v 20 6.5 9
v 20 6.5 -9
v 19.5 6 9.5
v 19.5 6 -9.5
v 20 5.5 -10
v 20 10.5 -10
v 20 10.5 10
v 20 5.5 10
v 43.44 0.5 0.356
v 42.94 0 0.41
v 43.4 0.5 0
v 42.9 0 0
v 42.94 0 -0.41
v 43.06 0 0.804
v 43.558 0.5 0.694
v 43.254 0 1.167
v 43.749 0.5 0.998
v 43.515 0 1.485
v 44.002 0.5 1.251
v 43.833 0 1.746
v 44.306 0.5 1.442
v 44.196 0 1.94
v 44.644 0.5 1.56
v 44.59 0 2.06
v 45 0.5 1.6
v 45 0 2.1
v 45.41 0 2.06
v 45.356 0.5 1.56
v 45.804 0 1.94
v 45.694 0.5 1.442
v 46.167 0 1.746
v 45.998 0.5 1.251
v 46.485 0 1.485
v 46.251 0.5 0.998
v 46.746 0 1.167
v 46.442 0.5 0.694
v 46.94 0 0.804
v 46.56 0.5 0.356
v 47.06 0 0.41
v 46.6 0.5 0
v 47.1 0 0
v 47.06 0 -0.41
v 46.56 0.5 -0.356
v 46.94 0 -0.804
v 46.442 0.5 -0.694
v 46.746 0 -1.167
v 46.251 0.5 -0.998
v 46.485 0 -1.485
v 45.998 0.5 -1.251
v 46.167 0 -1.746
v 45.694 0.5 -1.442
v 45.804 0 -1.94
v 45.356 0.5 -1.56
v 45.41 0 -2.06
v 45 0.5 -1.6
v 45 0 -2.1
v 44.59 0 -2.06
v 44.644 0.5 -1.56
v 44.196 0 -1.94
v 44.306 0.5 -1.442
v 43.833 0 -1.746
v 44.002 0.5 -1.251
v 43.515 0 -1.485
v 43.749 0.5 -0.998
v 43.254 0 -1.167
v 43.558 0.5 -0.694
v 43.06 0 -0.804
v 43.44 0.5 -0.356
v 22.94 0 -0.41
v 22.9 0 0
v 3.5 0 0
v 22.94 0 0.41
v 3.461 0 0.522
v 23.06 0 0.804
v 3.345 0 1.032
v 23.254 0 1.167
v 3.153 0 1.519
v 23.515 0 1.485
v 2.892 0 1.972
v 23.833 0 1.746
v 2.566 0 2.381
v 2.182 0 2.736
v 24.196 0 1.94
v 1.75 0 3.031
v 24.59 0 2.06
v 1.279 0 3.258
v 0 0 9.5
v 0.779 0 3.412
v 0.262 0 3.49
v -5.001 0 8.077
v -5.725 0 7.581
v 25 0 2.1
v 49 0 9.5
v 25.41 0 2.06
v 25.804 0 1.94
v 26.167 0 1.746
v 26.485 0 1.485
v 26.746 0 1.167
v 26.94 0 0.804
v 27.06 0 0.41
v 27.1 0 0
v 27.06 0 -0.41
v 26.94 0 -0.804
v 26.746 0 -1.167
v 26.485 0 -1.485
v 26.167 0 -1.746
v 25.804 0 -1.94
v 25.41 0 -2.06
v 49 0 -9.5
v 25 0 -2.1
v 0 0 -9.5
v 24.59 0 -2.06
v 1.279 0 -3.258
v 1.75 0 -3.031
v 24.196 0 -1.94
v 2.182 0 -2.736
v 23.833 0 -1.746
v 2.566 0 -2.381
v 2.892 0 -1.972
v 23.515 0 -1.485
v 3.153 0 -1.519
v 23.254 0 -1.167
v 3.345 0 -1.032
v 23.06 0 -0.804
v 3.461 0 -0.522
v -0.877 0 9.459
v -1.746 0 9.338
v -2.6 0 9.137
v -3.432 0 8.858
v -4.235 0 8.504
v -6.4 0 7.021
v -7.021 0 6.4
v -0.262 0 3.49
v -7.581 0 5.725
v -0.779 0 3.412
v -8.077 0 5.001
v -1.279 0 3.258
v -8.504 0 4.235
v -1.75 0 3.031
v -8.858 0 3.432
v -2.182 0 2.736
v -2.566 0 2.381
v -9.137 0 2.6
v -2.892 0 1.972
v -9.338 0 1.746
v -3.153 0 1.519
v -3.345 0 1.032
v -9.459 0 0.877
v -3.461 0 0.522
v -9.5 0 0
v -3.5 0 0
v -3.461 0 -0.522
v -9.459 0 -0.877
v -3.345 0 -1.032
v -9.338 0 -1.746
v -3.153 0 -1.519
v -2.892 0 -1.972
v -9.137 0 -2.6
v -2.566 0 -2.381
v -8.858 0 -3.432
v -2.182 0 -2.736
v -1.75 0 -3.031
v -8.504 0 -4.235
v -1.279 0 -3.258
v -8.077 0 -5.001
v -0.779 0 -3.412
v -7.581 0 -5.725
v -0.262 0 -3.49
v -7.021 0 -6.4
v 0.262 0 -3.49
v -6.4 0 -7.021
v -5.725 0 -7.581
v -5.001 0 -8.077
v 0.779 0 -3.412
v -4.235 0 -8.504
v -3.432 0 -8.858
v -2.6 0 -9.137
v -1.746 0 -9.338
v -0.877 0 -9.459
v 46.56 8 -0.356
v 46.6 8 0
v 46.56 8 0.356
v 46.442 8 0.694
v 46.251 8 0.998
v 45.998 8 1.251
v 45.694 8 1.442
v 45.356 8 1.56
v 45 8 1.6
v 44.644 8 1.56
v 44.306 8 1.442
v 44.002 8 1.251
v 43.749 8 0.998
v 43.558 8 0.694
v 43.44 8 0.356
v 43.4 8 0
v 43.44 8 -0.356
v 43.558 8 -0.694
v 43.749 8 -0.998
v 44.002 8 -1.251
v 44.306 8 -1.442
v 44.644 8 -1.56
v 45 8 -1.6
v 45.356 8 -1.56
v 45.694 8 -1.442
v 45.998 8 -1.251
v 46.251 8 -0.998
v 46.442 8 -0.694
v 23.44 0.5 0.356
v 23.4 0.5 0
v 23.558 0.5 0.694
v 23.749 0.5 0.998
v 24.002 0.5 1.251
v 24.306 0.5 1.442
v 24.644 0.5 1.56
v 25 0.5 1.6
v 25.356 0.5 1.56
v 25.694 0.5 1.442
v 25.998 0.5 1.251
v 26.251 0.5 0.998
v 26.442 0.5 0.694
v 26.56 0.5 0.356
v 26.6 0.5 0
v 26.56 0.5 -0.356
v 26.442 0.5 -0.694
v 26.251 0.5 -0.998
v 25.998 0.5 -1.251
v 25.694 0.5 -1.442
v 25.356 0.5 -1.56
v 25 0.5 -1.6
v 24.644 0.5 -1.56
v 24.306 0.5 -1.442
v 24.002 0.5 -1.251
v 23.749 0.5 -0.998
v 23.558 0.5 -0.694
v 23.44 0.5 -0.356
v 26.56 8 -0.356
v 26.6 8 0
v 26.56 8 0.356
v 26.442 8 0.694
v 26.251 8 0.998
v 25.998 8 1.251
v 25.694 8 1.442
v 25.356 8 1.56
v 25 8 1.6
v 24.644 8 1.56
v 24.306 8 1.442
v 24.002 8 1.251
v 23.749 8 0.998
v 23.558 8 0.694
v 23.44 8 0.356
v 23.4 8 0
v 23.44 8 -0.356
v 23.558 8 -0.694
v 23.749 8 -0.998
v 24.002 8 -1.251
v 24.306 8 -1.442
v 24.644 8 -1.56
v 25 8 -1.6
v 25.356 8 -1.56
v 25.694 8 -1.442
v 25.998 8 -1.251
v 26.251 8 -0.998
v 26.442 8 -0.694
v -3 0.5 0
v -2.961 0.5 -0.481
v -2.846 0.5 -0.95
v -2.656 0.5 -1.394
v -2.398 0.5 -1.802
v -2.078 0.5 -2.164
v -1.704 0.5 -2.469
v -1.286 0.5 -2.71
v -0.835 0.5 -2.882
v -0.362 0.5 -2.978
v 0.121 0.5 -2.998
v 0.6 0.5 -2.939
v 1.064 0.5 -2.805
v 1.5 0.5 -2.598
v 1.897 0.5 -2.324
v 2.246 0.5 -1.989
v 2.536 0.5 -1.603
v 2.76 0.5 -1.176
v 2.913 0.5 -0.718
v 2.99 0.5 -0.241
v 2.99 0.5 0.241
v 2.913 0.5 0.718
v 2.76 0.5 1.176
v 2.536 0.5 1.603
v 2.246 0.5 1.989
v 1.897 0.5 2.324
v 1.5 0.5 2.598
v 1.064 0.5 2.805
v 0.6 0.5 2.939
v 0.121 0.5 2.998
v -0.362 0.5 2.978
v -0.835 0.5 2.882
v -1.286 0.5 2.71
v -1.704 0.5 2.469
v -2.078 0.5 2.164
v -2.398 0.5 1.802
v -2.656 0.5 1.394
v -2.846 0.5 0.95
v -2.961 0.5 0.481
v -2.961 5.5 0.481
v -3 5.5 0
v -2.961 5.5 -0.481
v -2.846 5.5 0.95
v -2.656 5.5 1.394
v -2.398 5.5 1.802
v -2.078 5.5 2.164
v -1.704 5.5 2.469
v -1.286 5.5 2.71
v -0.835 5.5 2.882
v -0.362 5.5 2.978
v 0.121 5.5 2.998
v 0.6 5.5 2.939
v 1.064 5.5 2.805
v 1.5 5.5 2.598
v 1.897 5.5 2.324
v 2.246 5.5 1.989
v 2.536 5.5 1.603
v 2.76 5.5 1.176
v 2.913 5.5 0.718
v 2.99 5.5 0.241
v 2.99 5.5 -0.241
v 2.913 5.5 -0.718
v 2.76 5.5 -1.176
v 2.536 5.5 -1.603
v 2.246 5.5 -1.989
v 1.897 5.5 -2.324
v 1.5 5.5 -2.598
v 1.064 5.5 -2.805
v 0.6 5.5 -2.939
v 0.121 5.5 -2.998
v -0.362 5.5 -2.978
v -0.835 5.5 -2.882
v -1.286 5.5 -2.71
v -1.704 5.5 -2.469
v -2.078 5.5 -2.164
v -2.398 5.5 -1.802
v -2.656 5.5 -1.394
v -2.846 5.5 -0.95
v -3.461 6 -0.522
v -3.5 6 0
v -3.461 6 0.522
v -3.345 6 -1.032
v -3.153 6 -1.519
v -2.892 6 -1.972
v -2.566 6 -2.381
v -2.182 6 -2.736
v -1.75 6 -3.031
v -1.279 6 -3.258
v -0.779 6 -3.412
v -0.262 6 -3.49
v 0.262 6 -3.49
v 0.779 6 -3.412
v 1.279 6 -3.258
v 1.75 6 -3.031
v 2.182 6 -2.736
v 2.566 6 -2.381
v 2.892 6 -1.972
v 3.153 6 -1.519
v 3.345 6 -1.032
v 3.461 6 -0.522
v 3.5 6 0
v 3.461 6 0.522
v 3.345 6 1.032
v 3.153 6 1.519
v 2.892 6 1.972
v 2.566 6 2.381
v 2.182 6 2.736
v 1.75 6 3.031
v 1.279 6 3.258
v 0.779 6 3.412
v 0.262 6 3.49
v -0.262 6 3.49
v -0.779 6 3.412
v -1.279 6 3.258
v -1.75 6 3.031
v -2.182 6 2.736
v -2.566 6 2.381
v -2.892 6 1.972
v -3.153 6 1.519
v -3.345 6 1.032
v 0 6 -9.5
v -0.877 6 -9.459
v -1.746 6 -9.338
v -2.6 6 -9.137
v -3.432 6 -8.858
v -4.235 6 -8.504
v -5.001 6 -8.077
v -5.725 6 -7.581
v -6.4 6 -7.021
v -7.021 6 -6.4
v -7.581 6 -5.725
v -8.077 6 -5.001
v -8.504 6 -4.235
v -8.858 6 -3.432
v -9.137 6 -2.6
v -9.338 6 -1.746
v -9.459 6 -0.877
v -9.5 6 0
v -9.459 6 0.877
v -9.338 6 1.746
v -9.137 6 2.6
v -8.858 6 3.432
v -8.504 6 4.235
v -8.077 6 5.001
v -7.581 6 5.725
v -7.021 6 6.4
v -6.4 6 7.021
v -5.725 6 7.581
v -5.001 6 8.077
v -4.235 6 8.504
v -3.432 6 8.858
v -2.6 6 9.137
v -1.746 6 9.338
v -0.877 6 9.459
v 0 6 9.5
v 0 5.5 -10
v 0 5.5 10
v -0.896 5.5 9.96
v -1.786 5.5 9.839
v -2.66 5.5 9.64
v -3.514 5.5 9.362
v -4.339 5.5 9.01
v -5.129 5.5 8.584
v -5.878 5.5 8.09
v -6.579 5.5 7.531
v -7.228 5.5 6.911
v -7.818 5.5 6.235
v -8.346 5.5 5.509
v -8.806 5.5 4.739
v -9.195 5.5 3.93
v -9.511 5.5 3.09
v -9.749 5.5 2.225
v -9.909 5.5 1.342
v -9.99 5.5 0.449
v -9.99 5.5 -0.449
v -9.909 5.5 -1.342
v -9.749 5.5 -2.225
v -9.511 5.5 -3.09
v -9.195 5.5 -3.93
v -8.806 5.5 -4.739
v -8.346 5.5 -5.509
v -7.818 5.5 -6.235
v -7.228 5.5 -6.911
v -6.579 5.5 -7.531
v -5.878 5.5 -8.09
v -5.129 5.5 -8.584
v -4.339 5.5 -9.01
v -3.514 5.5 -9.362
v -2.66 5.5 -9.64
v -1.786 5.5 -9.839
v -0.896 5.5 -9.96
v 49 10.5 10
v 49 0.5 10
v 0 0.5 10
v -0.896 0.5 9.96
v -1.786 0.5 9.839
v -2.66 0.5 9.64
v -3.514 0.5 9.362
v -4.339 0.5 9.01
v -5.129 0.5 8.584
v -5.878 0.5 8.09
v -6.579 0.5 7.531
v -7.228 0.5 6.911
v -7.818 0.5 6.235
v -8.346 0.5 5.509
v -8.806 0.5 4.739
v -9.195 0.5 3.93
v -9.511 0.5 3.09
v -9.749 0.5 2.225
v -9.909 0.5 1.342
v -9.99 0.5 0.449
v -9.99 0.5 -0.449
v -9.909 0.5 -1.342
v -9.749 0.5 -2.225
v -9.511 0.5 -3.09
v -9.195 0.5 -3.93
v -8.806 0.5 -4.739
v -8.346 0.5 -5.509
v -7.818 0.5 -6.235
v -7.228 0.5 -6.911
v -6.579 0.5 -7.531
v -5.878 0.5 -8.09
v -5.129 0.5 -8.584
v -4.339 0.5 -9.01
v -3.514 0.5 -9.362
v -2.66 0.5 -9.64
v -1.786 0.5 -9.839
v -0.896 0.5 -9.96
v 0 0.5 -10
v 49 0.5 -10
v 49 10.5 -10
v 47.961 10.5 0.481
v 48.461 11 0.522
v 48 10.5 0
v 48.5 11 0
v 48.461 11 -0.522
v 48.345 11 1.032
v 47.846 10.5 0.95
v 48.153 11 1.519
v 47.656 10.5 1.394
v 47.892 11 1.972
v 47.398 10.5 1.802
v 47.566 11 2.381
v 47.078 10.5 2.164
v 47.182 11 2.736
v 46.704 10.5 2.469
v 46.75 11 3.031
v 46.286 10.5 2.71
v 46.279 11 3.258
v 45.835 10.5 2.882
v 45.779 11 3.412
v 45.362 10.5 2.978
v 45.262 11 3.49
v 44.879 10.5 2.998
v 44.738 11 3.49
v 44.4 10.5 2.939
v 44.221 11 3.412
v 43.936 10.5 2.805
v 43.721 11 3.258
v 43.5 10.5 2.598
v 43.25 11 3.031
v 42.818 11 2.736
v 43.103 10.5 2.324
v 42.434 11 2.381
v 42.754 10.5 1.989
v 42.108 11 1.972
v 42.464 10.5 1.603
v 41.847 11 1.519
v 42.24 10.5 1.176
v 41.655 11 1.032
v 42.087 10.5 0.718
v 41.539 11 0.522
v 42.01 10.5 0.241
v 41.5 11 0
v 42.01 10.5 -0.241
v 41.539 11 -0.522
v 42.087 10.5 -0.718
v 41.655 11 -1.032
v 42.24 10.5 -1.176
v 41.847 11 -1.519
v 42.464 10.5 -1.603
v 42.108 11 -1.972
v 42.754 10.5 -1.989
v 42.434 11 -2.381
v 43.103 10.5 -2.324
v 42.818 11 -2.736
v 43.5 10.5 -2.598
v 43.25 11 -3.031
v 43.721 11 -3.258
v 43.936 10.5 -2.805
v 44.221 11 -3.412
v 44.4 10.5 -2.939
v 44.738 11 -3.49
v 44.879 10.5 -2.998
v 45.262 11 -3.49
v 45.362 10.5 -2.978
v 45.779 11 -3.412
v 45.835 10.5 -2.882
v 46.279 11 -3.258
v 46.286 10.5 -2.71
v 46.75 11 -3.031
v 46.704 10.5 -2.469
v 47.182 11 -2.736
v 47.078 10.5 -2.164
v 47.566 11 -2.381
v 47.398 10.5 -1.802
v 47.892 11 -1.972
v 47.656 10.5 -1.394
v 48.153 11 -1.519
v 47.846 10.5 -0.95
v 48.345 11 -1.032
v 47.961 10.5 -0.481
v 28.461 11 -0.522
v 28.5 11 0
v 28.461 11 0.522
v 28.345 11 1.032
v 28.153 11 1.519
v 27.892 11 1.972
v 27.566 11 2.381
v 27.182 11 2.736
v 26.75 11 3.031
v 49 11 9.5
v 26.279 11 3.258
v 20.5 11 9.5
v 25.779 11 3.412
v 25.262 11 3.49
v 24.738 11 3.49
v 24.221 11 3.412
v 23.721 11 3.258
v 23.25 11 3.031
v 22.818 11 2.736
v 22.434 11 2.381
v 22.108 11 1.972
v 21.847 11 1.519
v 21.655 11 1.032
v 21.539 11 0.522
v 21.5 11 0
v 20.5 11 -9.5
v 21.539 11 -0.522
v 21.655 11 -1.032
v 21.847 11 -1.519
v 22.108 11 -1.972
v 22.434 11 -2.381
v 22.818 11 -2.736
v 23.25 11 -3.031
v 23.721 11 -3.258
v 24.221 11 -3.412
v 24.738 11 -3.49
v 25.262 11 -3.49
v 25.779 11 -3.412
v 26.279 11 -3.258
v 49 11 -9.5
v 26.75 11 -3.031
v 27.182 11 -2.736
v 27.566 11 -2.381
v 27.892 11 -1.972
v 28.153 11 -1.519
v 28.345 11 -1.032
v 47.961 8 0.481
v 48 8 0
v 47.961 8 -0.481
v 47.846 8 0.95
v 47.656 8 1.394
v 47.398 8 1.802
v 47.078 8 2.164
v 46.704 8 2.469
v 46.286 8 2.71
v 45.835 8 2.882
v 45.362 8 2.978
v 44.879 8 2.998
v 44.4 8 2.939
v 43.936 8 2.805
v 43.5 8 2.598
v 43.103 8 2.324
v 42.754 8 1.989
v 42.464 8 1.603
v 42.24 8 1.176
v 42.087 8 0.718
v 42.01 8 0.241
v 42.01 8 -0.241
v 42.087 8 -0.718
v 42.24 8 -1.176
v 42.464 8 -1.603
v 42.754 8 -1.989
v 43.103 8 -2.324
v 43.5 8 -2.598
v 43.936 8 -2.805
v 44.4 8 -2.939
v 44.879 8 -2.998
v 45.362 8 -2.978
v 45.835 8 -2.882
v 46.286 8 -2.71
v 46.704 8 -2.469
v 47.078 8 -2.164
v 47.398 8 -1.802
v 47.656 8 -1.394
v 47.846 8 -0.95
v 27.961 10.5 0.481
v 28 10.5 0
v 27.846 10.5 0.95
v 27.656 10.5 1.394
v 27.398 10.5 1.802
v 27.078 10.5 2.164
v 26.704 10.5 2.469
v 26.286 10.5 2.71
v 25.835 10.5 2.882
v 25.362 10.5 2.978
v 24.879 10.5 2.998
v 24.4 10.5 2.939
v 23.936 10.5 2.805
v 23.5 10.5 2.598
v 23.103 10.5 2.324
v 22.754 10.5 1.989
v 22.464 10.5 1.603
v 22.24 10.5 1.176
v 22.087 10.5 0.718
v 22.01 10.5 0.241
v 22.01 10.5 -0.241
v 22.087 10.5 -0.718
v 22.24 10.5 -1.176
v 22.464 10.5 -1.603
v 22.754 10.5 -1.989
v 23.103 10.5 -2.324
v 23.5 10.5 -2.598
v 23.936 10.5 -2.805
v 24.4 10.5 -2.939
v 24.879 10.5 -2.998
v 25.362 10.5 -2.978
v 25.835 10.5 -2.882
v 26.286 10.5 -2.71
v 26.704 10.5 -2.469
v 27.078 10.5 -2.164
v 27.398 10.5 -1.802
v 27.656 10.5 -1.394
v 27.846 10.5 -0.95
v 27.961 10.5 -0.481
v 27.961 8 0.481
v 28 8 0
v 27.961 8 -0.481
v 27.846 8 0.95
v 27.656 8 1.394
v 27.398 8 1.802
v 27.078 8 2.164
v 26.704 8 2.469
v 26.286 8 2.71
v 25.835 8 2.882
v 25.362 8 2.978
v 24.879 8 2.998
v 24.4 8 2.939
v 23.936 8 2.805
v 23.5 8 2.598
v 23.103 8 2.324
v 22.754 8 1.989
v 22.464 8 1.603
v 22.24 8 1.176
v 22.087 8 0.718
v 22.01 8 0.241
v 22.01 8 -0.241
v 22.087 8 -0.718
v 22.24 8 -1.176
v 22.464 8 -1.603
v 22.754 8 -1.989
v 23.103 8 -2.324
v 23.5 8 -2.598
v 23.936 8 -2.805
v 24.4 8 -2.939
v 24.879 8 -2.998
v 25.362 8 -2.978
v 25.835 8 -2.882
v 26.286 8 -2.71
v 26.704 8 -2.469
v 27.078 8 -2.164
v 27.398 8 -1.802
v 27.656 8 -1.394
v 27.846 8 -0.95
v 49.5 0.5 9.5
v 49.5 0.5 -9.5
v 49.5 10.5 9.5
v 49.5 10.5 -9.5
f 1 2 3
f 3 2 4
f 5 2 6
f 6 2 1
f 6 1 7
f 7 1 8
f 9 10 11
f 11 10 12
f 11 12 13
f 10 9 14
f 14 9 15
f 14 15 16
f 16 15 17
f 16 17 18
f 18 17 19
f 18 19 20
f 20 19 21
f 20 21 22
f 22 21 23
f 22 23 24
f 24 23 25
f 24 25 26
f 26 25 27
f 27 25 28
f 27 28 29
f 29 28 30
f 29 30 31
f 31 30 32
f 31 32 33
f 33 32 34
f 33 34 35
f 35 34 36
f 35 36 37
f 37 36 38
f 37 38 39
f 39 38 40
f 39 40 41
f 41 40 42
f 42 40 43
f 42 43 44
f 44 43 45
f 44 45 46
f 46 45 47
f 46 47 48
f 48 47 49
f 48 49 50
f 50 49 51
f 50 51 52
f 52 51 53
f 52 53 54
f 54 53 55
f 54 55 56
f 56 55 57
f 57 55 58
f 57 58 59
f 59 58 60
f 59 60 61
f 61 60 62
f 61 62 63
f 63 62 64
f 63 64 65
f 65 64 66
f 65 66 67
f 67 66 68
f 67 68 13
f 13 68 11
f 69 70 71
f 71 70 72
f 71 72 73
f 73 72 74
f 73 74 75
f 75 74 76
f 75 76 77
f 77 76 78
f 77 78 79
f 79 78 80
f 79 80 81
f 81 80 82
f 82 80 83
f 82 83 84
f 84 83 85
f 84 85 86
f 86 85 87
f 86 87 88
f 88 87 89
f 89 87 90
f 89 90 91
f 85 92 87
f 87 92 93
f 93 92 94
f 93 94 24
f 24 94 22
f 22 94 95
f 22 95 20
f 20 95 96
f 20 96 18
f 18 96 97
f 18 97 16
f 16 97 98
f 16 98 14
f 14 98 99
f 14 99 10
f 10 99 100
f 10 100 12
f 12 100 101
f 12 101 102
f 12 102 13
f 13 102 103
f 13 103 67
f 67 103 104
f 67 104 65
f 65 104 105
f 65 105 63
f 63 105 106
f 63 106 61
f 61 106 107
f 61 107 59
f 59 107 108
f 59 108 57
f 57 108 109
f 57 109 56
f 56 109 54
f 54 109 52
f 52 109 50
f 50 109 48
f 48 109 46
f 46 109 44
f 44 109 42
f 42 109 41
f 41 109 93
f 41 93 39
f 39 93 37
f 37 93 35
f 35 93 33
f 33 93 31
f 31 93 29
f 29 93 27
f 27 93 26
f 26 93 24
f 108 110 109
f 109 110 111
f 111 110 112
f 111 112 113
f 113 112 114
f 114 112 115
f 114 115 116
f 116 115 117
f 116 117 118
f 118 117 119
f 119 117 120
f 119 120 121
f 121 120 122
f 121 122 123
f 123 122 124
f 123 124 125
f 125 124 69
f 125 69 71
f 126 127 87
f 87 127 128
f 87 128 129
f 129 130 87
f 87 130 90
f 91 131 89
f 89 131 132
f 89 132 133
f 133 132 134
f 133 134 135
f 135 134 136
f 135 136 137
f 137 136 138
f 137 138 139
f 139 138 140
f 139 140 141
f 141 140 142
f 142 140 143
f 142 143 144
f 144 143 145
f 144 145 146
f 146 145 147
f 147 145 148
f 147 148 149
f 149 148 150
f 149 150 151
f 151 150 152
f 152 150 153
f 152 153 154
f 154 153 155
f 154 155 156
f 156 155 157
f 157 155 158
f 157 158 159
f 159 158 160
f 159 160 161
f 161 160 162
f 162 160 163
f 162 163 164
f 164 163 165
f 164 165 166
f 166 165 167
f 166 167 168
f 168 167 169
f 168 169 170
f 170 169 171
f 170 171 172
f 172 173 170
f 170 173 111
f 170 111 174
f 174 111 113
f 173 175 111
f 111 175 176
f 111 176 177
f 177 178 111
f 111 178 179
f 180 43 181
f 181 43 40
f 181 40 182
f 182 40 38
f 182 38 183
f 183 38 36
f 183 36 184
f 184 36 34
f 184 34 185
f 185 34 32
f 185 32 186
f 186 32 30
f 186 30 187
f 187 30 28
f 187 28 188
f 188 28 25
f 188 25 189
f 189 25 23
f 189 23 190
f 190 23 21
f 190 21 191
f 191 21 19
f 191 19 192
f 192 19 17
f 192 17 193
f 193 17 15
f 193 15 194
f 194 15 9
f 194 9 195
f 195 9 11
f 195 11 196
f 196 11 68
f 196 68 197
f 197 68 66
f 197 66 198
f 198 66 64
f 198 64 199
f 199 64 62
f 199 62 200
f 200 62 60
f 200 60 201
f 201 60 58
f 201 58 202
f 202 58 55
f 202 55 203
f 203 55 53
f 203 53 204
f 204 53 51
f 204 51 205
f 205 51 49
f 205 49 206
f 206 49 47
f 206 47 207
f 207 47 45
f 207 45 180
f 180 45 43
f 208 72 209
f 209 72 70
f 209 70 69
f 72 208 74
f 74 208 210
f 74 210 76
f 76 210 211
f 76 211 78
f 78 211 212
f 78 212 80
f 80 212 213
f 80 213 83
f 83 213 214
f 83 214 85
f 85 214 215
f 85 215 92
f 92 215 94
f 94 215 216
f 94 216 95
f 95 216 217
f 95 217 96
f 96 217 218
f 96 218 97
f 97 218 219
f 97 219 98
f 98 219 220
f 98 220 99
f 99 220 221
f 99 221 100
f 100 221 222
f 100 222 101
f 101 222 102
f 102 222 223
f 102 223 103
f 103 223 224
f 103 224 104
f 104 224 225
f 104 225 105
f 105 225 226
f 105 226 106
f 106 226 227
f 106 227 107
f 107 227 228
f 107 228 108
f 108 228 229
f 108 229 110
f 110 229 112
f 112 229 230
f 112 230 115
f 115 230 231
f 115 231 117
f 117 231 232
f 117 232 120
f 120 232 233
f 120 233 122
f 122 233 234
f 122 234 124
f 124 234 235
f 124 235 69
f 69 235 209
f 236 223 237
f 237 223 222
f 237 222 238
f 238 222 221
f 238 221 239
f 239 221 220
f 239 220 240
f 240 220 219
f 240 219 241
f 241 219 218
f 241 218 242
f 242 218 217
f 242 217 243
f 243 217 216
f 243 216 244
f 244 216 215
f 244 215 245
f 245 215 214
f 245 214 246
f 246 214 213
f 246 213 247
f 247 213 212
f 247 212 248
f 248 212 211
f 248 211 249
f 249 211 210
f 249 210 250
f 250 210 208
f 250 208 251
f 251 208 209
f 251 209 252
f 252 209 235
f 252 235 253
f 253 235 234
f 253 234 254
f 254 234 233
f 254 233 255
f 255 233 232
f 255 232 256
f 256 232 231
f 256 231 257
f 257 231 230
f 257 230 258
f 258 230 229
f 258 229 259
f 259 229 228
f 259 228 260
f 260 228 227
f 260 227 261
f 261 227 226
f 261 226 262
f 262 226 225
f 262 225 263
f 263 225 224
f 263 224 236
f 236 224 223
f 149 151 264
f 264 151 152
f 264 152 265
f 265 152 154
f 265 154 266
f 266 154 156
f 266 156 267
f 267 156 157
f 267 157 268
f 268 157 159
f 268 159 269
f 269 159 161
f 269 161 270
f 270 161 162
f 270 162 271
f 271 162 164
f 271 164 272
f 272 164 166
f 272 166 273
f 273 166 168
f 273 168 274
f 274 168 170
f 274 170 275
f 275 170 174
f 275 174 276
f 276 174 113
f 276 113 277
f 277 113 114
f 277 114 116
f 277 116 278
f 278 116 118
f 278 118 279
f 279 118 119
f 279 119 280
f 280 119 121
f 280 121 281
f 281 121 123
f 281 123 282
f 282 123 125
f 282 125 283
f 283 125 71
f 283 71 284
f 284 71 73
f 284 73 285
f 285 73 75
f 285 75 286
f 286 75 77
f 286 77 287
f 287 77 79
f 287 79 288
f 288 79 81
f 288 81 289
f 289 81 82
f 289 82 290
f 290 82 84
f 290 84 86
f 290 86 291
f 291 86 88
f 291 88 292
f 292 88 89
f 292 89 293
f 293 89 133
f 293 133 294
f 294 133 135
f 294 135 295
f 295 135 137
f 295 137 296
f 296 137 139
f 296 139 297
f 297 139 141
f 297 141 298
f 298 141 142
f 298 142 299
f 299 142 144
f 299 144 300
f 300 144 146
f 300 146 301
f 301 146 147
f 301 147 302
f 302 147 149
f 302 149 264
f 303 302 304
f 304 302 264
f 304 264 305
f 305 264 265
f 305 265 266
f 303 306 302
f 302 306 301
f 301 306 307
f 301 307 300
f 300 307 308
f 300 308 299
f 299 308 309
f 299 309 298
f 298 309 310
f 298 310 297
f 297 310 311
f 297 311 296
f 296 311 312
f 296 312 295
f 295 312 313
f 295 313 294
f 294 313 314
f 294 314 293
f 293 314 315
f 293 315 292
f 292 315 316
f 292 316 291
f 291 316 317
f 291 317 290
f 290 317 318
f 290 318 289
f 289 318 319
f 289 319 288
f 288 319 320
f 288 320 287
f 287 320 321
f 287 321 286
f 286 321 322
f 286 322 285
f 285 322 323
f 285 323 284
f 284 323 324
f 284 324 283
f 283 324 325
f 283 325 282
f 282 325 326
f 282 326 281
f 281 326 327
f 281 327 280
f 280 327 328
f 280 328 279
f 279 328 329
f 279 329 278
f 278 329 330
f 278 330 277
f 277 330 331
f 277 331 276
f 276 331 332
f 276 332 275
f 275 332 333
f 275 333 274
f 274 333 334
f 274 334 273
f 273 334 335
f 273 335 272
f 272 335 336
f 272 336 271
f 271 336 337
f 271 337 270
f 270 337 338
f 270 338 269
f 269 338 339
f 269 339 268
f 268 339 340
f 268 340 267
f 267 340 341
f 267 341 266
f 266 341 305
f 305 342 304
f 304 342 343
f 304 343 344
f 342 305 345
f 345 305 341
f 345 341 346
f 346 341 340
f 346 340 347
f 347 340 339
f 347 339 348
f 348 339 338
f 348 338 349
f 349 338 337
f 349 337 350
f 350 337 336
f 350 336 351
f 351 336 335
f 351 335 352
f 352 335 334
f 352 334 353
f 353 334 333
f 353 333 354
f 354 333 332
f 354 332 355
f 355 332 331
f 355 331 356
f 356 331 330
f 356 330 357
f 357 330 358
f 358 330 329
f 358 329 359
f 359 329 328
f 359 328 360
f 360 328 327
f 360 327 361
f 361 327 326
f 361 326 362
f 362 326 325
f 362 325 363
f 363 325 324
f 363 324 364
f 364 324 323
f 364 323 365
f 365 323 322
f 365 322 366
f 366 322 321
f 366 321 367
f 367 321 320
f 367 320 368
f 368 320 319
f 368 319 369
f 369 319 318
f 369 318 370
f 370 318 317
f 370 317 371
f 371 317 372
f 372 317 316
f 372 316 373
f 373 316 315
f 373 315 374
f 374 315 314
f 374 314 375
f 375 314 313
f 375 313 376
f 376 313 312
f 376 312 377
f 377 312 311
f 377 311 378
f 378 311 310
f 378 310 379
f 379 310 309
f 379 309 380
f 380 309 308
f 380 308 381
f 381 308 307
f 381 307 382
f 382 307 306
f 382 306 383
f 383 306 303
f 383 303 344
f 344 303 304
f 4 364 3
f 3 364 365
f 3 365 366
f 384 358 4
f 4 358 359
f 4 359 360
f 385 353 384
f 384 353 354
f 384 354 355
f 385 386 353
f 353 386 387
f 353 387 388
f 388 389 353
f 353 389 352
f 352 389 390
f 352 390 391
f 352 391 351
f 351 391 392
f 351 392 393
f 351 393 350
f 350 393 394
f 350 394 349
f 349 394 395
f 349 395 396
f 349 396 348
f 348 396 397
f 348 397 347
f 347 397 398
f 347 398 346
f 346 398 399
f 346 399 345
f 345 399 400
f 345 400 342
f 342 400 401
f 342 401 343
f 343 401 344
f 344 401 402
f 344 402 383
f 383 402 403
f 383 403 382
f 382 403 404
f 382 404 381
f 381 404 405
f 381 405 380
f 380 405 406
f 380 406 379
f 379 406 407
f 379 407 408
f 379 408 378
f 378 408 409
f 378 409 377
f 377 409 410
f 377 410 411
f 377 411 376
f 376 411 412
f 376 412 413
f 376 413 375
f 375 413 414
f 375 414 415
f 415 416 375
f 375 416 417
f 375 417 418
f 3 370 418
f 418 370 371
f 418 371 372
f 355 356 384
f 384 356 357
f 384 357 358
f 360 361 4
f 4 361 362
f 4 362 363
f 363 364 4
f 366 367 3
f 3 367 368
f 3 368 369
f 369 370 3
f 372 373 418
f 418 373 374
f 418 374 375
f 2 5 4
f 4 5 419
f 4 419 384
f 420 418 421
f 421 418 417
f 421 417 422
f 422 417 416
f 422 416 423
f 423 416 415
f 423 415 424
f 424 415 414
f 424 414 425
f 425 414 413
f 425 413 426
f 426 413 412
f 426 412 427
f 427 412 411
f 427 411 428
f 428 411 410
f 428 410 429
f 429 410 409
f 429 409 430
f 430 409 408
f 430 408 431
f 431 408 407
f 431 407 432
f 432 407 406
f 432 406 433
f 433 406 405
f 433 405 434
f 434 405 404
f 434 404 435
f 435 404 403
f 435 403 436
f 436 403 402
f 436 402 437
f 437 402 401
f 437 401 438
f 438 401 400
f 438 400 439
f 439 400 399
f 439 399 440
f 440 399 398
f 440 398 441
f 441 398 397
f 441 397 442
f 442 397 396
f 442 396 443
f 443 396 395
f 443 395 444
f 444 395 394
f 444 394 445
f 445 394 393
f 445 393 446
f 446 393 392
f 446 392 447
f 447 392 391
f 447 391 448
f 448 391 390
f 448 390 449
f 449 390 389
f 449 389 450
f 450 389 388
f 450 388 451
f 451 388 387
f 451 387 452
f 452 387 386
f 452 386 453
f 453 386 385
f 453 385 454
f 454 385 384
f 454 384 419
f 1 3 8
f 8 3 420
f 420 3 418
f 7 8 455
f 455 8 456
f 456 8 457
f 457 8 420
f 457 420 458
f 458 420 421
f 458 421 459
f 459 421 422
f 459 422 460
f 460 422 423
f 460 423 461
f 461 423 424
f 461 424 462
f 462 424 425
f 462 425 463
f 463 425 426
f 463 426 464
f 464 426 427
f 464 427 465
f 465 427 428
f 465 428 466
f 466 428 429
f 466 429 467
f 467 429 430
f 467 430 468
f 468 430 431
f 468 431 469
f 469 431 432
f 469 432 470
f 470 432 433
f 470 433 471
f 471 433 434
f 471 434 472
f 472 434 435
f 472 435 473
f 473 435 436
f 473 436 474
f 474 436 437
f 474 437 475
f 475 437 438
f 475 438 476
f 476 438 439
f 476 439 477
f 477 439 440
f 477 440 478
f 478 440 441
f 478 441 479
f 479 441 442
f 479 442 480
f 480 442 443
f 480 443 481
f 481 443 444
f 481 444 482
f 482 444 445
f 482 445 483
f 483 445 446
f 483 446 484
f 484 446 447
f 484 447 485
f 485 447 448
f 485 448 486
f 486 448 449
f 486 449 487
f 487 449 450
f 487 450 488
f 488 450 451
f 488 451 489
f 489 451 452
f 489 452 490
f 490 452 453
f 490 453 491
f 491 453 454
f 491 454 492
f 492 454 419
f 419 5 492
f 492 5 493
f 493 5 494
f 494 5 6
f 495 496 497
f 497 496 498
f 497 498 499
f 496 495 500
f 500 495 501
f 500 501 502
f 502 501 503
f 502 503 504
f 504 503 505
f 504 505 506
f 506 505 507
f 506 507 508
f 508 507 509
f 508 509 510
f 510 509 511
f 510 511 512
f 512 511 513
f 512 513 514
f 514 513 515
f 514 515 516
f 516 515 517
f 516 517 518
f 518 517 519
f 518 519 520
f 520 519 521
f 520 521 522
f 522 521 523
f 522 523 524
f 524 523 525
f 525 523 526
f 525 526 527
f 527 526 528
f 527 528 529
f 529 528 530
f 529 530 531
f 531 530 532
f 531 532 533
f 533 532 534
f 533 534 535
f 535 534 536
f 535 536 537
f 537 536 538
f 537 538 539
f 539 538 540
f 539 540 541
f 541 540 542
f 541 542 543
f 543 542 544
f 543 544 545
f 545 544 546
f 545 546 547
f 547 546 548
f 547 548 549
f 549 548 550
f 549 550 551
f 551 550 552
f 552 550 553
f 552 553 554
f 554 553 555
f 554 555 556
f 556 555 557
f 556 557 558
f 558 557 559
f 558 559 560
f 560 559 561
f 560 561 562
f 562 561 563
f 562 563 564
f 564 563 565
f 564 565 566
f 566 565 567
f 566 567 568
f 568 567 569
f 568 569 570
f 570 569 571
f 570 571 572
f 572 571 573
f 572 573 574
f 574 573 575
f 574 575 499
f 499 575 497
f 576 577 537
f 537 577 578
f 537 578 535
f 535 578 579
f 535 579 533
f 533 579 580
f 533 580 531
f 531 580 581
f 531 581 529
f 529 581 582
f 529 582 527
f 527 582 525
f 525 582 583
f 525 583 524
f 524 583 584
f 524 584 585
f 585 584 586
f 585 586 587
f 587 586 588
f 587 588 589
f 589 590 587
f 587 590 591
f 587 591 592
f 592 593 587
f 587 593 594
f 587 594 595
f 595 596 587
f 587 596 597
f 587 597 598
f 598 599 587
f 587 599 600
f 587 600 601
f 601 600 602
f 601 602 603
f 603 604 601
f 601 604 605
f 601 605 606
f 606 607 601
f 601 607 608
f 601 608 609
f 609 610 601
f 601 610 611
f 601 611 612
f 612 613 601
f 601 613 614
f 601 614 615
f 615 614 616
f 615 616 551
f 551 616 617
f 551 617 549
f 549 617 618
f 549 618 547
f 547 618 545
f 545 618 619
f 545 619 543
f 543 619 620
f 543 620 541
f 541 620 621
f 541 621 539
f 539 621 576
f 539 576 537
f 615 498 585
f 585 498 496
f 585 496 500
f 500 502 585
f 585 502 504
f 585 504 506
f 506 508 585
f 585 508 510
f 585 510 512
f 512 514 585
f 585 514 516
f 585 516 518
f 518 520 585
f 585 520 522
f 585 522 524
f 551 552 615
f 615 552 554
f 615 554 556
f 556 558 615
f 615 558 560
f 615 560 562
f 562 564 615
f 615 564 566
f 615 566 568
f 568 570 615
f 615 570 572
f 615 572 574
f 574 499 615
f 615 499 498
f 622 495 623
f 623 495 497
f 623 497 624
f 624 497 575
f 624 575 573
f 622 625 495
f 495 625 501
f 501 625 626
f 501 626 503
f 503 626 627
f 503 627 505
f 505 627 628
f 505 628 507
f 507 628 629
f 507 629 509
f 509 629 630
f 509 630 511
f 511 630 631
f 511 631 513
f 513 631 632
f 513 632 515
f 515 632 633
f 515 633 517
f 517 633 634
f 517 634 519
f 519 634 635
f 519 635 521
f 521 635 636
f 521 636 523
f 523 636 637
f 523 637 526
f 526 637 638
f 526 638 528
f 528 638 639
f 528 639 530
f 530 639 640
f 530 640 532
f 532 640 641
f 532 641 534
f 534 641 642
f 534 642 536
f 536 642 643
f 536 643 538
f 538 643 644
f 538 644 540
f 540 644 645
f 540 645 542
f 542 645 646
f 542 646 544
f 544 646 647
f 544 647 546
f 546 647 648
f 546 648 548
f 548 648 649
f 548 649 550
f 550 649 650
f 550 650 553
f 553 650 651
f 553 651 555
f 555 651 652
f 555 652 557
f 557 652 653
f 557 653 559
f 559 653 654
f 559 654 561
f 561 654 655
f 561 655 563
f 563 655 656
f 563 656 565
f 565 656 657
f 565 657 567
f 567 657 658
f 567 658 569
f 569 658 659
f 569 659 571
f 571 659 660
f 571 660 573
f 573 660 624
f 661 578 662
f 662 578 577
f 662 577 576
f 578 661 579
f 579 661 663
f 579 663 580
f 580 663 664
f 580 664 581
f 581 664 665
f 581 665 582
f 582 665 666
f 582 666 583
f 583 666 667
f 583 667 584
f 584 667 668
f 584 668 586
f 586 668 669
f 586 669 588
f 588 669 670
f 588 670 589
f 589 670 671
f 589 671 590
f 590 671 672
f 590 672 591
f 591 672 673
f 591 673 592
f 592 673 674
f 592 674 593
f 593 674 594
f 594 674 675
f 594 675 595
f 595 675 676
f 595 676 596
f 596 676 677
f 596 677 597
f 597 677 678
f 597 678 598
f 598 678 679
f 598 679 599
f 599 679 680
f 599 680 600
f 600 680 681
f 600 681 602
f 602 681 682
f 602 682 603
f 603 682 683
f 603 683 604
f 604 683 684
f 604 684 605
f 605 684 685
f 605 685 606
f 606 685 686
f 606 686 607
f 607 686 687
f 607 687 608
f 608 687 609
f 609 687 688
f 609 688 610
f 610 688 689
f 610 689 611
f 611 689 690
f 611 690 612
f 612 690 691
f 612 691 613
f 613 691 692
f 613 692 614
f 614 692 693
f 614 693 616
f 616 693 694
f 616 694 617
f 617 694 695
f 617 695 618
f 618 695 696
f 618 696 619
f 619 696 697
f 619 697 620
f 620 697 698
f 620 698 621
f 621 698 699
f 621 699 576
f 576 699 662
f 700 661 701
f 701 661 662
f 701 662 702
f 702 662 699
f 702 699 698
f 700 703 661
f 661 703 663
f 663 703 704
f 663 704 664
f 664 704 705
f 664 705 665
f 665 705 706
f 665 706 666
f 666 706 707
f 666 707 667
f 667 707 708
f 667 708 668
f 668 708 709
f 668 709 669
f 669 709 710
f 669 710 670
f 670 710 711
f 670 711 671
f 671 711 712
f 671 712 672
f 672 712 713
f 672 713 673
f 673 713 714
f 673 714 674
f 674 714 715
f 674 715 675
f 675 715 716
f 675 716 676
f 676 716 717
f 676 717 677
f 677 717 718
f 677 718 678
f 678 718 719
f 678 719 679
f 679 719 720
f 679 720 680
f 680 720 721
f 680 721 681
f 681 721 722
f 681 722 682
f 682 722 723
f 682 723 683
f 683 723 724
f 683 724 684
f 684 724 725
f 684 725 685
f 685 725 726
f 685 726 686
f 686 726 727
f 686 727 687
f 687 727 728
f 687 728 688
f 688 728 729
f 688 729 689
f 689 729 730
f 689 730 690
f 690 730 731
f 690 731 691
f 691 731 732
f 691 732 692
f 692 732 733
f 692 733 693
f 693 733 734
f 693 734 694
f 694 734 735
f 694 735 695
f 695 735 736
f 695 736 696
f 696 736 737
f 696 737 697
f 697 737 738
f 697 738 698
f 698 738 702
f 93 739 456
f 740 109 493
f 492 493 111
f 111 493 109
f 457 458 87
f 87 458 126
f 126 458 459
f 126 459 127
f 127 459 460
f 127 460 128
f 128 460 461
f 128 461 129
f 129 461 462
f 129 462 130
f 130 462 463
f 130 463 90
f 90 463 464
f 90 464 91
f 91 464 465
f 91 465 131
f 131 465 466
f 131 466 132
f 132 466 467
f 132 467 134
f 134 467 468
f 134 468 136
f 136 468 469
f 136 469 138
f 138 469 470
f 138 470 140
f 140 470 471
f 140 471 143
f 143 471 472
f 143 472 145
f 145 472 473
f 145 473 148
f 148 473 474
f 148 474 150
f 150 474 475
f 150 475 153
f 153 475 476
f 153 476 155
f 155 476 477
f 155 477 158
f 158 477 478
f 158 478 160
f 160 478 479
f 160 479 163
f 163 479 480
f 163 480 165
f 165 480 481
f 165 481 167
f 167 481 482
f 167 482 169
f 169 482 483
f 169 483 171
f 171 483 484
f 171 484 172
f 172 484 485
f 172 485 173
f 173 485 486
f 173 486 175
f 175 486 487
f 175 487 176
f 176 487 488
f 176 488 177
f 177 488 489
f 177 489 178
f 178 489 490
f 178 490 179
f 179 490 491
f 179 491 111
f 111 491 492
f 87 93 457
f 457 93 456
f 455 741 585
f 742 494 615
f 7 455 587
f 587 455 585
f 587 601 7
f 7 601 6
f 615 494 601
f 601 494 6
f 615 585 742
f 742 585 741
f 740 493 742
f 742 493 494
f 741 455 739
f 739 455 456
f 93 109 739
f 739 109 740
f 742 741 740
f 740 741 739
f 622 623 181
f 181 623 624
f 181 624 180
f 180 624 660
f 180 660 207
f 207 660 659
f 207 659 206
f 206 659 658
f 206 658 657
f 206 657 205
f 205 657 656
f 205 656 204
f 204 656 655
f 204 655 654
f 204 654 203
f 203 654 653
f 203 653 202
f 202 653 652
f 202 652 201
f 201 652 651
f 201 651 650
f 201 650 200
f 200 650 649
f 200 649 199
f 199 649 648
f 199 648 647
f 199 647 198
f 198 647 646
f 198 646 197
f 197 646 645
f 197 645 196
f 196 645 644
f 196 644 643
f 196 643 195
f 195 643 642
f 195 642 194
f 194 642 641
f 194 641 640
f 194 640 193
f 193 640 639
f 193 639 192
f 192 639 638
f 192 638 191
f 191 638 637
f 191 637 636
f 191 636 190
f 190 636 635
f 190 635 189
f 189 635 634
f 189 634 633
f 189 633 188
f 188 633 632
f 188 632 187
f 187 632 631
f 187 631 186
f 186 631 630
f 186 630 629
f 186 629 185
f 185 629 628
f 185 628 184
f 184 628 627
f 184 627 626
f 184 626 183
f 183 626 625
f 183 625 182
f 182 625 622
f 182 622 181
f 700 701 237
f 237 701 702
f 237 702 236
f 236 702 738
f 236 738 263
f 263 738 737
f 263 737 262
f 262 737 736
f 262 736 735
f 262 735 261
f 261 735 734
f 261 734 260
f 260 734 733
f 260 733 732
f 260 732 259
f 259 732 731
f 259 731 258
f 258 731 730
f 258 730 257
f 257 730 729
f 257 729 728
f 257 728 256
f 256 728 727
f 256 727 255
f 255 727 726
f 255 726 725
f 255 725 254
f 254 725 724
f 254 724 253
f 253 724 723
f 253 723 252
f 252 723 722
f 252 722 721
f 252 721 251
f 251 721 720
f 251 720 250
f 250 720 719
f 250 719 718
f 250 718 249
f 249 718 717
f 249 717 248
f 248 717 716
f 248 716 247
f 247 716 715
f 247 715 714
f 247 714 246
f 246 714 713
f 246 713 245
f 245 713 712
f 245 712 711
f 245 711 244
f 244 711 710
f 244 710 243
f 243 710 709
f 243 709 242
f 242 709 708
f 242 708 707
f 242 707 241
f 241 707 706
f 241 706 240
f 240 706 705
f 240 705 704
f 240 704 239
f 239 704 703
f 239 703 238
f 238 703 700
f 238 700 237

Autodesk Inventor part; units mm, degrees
ref_plane "YZ Plane" through (0, 0, 0) normal (1, 0, 0) x (0, 1, 0)
ref_plane "XZ Plane" through (0, 0, 0) normal (0, 1, 0) x (-1, 0, 0)
ref_plane "XY Plane" through (0, 0, 0) normal (0, 0, 1) x (1, 0, 0)
sketch "Náčrt1" plane through (0, 0, 0) normal (0, 1, 0) x (-1, 0, 0)
  circle A0 centre (0, 0) radius 10
  line L0 (0, -10) -> (-50, -10)
  line L1 (-50, -10) -> (-50, 10)
  line L2 (-50, 10) -> (0, 10)
  circle A1 centre (0, 0) radius 3
  circle A2 centre (0, 0) radius 7.5 construction
  dimension "d0" = 6
  dimension "d1" = 15
  dimension "d2" = 20
  dimension "d3" = 50
extrude "Vysunutí1" add sketch "Náčrt1" along normal blind 6
sketch "Náčrt2" plane through (0, 6, 0) normal (0, 1, 0) x (1, 0, 0)
  line L0 (0, -10) -> (50, -10) projected
  line L1 (50, -10) -> (50, 10) projected
  line L2 (50, 10) -> (0, 10) projected
  arc A0 (0, 10) -> (0, -10) centre (0, 0) ccw projected
  circle A1 centre (0, 0) radius 3 projected
  circle A2 centre (45, 0) radius 1.6
  circle A3 centre (25, 0) radius 1.6
  dimension "d6" = 5
  dimension "d7" = 25
  dimension "d8" = 3.2
extrude "Vysunutí2" cut sketch "Náčrt2" against normal through all contours A2 | A3
sketch "Náčrt5" plane through (0, 6, 0) normal (0, 1, 0) x (1, 0, 0)
  circle A0 centre (45, 0) radius 1.6 projected
  circle A1 centre (25, 0) radius 1.6 projected
  line L0 (0, -10) -> (50, -10) projected
  line L1 (50, -10) -> (50, 10) projected
  line L2 (50, 10) -> (0, 10) projected
  arc A2 (0, 10) -> (0, -10) centre (0, 0) ccw projected
  circle A3 centre (0, 0) radius 3 projected
  line L3 (20, 10) -> (20, -10)
  dimension "d19" = 30
extrude "Vysunutí5" add sketch "Náčrt5" along normal blind 5 contours L3 L2 L1 L0
sketch "Náčrt7" plane through (0, 11, 0) normal (0, 1, 0) x (1, 0, 0)
  line L0 (50, 10) -> (20, 10) projected
  line L1 (20, 10) -> (20, -10) projected
  line L2 (20, -10) -> (50, -10) projected
  line L3 (50, -10) -> (50, 10) projected
  circle A0 centre (25, 0) radius 1.6 projected
  circle A1 centre (45, 0) radius 1.6 projected
  circle A2 centre (25, 0) radius 1.6 projected
  circle A3 centre (25, 0) radius 3
  circle A4 centre (45, 0) radius 1.6 projected
  circle A5 centre (45, 0) radius 3
  point P0 (0, 0)
  dimension "d22" = 6
extrude "Vysunutí6" cut sketch "Náčrt7" against normal blind 3 contours A3 | A5
sketch "Náčrt8" plane through (50, 0, 10) normal (1, 0, 0) x (0, 0, -1)
  line L0 (0, 0) -> (20, 0) projected
  line L1 (20, 0) -> (20, 11) projected
  line L2 (0, 11) -> (20, 11) projected
  line L3 (0, 0) -> (0, 11) projected
  point P0 (10, 0)
extrude "Vysunutí7" cut sketch "Náčrt8" against normal blind 0.5
chamfer "Zkosení2" distance 0.5 angle 45 20 edges at (20, 11, 0) (22, 11, 0) (42, 11, 0) (24.75, 0, 10) (-10, 0, 0) (24.75, 0, -10) (10, 6, 10) (-10, 6, 0) (10, 6, -10) (34.75, 11, 10) (49.5, 11, 0) (34.75, 11, -10) (49.5, 0, 0) (49.5, 5.5, 10) (49.5, 5.5, -10) (3, 6, 0) (20, 6, 0) (3, 0, 0) (23.4, 0, 0) (43.4, 0, 0)
properties part number "middle_joint"
